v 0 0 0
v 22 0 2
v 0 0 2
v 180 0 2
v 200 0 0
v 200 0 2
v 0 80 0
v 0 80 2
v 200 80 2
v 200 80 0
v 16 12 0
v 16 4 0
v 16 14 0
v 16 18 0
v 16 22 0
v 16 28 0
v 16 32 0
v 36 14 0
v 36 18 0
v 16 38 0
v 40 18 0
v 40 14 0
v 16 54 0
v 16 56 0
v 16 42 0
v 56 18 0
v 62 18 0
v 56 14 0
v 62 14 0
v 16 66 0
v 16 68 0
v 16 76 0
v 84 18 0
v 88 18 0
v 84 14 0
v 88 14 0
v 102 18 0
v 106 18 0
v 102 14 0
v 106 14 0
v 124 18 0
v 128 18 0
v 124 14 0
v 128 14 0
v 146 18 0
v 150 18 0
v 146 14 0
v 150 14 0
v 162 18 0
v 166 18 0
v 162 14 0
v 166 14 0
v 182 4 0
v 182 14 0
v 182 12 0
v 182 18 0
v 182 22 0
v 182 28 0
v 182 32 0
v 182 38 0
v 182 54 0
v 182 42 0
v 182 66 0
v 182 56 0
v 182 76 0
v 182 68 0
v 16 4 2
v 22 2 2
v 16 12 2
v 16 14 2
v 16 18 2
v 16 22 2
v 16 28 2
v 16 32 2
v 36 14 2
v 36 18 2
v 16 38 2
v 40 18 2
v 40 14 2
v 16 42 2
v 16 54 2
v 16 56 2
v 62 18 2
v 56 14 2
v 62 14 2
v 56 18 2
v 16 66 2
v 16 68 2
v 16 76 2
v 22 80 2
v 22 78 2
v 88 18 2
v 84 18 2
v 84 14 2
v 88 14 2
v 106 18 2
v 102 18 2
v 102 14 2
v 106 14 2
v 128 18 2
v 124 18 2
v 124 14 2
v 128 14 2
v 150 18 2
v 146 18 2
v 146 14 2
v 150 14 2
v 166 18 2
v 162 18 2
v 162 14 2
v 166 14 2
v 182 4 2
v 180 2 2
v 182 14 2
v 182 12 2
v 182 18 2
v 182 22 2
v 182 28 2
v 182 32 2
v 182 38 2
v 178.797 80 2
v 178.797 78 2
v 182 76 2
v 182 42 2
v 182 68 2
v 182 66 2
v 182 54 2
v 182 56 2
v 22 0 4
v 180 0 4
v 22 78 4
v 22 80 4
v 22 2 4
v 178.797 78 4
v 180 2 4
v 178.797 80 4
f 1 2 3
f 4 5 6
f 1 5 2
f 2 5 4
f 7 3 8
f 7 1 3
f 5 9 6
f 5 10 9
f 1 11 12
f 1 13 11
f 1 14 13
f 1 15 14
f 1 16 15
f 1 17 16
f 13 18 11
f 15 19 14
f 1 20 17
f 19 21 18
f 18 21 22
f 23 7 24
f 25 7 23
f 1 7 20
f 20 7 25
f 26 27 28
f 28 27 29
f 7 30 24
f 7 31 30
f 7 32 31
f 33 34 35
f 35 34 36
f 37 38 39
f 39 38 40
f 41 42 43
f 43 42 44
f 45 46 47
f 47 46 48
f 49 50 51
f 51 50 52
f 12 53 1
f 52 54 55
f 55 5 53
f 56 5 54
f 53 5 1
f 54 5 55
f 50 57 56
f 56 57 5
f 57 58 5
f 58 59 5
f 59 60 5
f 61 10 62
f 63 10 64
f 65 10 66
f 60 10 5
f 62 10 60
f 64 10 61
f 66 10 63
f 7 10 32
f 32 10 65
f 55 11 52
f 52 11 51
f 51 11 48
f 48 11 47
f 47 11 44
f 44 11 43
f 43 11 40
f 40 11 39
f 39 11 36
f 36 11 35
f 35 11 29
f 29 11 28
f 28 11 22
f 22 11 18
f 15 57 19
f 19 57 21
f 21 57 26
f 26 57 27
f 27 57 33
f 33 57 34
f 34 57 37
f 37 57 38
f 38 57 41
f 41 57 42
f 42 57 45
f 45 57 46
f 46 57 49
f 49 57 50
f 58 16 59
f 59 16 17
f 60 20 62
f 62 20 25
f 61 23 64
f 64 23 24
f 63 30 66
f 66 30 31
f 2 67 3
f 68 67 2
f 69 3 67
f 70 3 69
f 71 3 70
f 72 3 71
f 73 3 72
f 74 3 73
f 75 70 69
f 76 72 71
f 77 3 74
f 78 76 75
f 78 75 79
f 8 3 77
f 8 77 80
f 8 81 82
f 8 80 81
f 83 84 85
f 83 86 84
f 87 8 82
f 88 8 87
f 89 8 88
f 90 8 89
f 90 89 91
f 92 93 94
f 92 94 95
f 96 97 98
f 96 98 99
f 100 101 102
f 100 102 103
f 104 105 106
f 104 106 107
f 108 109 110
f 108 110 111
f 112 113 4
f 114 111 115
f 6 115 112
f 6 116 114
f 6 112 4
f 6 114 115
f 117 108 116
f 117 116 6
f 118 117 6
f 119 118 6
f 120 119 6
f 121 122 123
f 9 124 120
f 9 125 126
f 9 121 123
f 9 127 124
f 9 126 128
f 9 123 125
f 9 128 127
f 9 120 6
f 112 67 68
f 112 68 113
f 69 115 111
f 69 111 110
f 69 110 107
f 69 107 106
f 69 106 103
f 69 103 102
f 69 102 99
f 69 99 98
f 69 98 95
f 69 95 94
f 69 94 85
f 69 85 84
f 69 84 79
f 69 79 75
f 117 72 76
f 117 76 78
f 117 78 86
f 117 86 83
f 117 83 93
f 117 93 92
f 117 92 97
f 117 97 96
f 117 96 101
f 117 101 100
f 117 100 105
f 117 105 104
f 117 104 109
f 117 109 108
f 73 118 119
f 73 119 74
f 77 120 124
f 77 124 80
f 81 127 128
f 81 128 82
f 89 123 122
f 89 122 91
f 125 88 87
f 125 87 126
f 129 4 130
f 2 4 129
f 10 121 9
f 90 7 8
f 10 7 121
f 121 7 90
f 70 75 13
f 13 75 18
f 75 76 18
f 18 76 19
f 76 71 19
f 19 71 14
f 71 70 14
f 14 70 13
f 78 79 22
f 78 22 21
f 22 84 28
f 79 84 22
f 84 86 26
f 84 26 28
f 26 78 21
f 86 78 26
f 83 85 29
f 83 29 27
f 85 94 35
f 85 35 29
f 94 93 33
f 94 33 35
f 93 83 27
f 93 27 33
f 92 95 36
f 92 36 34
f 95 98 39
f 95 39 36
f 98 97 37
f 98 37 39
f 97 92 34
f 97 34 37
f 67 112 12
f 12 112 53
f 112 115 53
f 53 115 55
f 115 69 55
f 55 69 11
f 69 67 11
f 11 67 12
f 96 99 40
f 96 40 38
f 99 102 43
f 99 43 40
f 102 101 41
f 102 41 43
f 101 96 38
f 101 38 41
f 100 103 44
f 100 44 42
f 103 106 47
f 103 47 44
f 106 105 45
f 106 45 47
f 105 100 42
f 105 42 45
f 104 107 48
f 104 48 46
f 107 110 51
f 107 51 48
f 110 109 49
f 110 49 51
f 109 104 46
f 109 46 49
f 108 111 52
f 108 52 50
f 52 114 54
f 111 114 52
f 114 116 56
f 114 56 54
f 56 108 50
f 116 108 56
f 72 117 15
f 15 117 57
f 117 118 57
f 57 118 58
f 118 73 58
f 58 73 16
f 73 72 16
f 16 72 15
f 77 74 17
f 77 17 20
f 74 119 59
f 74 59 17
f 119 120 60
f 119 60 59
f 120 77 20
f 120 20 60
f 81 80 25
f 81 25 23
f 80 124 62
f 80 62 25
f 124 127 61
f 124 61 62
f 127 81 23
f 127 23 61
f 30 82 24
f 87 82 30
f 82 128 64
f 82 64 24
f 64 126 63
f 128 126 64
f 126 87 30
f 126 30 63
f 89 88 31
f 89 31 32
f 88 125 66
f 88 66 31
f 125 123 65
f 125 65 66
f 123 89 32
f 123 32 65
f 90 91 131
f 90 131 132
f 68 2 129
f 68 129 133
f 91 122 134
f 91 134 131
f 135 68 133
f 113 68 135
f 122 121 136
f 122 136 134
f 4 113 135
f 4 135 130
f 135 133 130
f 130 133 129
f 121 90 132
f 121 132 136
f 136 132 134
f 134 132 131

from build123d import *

# Parameters (mm, degrees)
SKETCH_W      = 200
SKETCH_H      = 80
PAD_DEPTH     = 2
SKETCH001_W   = 158
SKETCH001_H   = 2
SKETCH001_W_2 = 156.797272
PAD001_DEPTH  = 2
SKETCH002_W   = 166
SKETCH002_H   = 8
SKETCH002_H_2 = 10
SKETCH002_H_3 = 12
SKETCH002_W_2 = 20
SKETCH002_H_4 = 4
SKETCH002_W_3 = 16
SKETCH002_W_4 = 22
SKETCH002_W_5 = 14
SKETCH002_W_6 = 18
SKETCH002_W_7 = 12
SKETCH002_H_5 = 6
POCKET_DEPTH  = 5


with BuildPart() as part:
    # Sketch → Pad (new body)
    with BuildSketch(Plane.XY):
        with Locations((100, 40)):
            Rectangle(SKETCH_W, SKETCH_H)
    extrude(amount=PAD_DEPTH)

    # Sketch001 (on Face6 of Pad) → Pad001 (join)
    with BuildSketch(Plane.XY.offset(2)):
        with Locations((101, 1)):
            Rectangle(SKETCH001_W, SKETCH001_H)
        with Locations((100.398636, 79)):
            Rectangle(SKETCH001_W_2, SKETCH001_H)
    extrude(amount=PAD001_DEPTH)

    # Sketch002 (on Face5 of Pad001) → Pocket (cut)
    with BuildSketch(Plane.XY.offset(2)):
        with Locations((99, 72)):
            Rectangle(SKETCH002_W, SKETCH002_H)
        with Locations((99, 61)):
            Rectangle(SKETCH002_W, SKETCH002_H_2)
        with Locations((99, 48)):
            Rectangle(SKETCH002_W, SKETCH002_H_3)
        with Locations((99, 8)):
            Rectangle(SKETCH002_W, SKETCH002_H)
        with Locations((26, 16)):
            Rectangle(SKETCH002_W_2, SKETCH002_H_4)
        with Locations((48, 16)):
            Rectangle(SKETCH002_W_3, SKETCH002_H_4)
        with Locations((73, 16)):
            Rectangle(SKETCH002_W_4, SKETCH002_H_4)
        with Locations((95, 16)):
            Rectangle(SKETCH002_W_5, SKETCH002_H_4)
        with Locations((115, 16)):
            Rectangle(SKETCH002_W_6, SKETCH002_H_4)
        with Locations((137, 16)):
            Rectangle(SKETCH002_W_6, SKETCH002_H_4)
        with Locations((156, 16)):
            Rectangle(SKETCH002_W_7, SKETCH002_H_4)
        with Locations((174, 16)):
            Rectangle(SKETCH002_W_3, SKETCH002_H_4)
        with Locations((99, 25)):
            Rectangle(SKETCH002_W, SKETCH002_H_5)
        with Locations((99, 35)):
            Rectangle(SKETCH002_W, SKETCH002_H_5)
    extrude(amount=-POCKET_DEPTH, mode=Mode.SUBTRACT)


solid = part.part
